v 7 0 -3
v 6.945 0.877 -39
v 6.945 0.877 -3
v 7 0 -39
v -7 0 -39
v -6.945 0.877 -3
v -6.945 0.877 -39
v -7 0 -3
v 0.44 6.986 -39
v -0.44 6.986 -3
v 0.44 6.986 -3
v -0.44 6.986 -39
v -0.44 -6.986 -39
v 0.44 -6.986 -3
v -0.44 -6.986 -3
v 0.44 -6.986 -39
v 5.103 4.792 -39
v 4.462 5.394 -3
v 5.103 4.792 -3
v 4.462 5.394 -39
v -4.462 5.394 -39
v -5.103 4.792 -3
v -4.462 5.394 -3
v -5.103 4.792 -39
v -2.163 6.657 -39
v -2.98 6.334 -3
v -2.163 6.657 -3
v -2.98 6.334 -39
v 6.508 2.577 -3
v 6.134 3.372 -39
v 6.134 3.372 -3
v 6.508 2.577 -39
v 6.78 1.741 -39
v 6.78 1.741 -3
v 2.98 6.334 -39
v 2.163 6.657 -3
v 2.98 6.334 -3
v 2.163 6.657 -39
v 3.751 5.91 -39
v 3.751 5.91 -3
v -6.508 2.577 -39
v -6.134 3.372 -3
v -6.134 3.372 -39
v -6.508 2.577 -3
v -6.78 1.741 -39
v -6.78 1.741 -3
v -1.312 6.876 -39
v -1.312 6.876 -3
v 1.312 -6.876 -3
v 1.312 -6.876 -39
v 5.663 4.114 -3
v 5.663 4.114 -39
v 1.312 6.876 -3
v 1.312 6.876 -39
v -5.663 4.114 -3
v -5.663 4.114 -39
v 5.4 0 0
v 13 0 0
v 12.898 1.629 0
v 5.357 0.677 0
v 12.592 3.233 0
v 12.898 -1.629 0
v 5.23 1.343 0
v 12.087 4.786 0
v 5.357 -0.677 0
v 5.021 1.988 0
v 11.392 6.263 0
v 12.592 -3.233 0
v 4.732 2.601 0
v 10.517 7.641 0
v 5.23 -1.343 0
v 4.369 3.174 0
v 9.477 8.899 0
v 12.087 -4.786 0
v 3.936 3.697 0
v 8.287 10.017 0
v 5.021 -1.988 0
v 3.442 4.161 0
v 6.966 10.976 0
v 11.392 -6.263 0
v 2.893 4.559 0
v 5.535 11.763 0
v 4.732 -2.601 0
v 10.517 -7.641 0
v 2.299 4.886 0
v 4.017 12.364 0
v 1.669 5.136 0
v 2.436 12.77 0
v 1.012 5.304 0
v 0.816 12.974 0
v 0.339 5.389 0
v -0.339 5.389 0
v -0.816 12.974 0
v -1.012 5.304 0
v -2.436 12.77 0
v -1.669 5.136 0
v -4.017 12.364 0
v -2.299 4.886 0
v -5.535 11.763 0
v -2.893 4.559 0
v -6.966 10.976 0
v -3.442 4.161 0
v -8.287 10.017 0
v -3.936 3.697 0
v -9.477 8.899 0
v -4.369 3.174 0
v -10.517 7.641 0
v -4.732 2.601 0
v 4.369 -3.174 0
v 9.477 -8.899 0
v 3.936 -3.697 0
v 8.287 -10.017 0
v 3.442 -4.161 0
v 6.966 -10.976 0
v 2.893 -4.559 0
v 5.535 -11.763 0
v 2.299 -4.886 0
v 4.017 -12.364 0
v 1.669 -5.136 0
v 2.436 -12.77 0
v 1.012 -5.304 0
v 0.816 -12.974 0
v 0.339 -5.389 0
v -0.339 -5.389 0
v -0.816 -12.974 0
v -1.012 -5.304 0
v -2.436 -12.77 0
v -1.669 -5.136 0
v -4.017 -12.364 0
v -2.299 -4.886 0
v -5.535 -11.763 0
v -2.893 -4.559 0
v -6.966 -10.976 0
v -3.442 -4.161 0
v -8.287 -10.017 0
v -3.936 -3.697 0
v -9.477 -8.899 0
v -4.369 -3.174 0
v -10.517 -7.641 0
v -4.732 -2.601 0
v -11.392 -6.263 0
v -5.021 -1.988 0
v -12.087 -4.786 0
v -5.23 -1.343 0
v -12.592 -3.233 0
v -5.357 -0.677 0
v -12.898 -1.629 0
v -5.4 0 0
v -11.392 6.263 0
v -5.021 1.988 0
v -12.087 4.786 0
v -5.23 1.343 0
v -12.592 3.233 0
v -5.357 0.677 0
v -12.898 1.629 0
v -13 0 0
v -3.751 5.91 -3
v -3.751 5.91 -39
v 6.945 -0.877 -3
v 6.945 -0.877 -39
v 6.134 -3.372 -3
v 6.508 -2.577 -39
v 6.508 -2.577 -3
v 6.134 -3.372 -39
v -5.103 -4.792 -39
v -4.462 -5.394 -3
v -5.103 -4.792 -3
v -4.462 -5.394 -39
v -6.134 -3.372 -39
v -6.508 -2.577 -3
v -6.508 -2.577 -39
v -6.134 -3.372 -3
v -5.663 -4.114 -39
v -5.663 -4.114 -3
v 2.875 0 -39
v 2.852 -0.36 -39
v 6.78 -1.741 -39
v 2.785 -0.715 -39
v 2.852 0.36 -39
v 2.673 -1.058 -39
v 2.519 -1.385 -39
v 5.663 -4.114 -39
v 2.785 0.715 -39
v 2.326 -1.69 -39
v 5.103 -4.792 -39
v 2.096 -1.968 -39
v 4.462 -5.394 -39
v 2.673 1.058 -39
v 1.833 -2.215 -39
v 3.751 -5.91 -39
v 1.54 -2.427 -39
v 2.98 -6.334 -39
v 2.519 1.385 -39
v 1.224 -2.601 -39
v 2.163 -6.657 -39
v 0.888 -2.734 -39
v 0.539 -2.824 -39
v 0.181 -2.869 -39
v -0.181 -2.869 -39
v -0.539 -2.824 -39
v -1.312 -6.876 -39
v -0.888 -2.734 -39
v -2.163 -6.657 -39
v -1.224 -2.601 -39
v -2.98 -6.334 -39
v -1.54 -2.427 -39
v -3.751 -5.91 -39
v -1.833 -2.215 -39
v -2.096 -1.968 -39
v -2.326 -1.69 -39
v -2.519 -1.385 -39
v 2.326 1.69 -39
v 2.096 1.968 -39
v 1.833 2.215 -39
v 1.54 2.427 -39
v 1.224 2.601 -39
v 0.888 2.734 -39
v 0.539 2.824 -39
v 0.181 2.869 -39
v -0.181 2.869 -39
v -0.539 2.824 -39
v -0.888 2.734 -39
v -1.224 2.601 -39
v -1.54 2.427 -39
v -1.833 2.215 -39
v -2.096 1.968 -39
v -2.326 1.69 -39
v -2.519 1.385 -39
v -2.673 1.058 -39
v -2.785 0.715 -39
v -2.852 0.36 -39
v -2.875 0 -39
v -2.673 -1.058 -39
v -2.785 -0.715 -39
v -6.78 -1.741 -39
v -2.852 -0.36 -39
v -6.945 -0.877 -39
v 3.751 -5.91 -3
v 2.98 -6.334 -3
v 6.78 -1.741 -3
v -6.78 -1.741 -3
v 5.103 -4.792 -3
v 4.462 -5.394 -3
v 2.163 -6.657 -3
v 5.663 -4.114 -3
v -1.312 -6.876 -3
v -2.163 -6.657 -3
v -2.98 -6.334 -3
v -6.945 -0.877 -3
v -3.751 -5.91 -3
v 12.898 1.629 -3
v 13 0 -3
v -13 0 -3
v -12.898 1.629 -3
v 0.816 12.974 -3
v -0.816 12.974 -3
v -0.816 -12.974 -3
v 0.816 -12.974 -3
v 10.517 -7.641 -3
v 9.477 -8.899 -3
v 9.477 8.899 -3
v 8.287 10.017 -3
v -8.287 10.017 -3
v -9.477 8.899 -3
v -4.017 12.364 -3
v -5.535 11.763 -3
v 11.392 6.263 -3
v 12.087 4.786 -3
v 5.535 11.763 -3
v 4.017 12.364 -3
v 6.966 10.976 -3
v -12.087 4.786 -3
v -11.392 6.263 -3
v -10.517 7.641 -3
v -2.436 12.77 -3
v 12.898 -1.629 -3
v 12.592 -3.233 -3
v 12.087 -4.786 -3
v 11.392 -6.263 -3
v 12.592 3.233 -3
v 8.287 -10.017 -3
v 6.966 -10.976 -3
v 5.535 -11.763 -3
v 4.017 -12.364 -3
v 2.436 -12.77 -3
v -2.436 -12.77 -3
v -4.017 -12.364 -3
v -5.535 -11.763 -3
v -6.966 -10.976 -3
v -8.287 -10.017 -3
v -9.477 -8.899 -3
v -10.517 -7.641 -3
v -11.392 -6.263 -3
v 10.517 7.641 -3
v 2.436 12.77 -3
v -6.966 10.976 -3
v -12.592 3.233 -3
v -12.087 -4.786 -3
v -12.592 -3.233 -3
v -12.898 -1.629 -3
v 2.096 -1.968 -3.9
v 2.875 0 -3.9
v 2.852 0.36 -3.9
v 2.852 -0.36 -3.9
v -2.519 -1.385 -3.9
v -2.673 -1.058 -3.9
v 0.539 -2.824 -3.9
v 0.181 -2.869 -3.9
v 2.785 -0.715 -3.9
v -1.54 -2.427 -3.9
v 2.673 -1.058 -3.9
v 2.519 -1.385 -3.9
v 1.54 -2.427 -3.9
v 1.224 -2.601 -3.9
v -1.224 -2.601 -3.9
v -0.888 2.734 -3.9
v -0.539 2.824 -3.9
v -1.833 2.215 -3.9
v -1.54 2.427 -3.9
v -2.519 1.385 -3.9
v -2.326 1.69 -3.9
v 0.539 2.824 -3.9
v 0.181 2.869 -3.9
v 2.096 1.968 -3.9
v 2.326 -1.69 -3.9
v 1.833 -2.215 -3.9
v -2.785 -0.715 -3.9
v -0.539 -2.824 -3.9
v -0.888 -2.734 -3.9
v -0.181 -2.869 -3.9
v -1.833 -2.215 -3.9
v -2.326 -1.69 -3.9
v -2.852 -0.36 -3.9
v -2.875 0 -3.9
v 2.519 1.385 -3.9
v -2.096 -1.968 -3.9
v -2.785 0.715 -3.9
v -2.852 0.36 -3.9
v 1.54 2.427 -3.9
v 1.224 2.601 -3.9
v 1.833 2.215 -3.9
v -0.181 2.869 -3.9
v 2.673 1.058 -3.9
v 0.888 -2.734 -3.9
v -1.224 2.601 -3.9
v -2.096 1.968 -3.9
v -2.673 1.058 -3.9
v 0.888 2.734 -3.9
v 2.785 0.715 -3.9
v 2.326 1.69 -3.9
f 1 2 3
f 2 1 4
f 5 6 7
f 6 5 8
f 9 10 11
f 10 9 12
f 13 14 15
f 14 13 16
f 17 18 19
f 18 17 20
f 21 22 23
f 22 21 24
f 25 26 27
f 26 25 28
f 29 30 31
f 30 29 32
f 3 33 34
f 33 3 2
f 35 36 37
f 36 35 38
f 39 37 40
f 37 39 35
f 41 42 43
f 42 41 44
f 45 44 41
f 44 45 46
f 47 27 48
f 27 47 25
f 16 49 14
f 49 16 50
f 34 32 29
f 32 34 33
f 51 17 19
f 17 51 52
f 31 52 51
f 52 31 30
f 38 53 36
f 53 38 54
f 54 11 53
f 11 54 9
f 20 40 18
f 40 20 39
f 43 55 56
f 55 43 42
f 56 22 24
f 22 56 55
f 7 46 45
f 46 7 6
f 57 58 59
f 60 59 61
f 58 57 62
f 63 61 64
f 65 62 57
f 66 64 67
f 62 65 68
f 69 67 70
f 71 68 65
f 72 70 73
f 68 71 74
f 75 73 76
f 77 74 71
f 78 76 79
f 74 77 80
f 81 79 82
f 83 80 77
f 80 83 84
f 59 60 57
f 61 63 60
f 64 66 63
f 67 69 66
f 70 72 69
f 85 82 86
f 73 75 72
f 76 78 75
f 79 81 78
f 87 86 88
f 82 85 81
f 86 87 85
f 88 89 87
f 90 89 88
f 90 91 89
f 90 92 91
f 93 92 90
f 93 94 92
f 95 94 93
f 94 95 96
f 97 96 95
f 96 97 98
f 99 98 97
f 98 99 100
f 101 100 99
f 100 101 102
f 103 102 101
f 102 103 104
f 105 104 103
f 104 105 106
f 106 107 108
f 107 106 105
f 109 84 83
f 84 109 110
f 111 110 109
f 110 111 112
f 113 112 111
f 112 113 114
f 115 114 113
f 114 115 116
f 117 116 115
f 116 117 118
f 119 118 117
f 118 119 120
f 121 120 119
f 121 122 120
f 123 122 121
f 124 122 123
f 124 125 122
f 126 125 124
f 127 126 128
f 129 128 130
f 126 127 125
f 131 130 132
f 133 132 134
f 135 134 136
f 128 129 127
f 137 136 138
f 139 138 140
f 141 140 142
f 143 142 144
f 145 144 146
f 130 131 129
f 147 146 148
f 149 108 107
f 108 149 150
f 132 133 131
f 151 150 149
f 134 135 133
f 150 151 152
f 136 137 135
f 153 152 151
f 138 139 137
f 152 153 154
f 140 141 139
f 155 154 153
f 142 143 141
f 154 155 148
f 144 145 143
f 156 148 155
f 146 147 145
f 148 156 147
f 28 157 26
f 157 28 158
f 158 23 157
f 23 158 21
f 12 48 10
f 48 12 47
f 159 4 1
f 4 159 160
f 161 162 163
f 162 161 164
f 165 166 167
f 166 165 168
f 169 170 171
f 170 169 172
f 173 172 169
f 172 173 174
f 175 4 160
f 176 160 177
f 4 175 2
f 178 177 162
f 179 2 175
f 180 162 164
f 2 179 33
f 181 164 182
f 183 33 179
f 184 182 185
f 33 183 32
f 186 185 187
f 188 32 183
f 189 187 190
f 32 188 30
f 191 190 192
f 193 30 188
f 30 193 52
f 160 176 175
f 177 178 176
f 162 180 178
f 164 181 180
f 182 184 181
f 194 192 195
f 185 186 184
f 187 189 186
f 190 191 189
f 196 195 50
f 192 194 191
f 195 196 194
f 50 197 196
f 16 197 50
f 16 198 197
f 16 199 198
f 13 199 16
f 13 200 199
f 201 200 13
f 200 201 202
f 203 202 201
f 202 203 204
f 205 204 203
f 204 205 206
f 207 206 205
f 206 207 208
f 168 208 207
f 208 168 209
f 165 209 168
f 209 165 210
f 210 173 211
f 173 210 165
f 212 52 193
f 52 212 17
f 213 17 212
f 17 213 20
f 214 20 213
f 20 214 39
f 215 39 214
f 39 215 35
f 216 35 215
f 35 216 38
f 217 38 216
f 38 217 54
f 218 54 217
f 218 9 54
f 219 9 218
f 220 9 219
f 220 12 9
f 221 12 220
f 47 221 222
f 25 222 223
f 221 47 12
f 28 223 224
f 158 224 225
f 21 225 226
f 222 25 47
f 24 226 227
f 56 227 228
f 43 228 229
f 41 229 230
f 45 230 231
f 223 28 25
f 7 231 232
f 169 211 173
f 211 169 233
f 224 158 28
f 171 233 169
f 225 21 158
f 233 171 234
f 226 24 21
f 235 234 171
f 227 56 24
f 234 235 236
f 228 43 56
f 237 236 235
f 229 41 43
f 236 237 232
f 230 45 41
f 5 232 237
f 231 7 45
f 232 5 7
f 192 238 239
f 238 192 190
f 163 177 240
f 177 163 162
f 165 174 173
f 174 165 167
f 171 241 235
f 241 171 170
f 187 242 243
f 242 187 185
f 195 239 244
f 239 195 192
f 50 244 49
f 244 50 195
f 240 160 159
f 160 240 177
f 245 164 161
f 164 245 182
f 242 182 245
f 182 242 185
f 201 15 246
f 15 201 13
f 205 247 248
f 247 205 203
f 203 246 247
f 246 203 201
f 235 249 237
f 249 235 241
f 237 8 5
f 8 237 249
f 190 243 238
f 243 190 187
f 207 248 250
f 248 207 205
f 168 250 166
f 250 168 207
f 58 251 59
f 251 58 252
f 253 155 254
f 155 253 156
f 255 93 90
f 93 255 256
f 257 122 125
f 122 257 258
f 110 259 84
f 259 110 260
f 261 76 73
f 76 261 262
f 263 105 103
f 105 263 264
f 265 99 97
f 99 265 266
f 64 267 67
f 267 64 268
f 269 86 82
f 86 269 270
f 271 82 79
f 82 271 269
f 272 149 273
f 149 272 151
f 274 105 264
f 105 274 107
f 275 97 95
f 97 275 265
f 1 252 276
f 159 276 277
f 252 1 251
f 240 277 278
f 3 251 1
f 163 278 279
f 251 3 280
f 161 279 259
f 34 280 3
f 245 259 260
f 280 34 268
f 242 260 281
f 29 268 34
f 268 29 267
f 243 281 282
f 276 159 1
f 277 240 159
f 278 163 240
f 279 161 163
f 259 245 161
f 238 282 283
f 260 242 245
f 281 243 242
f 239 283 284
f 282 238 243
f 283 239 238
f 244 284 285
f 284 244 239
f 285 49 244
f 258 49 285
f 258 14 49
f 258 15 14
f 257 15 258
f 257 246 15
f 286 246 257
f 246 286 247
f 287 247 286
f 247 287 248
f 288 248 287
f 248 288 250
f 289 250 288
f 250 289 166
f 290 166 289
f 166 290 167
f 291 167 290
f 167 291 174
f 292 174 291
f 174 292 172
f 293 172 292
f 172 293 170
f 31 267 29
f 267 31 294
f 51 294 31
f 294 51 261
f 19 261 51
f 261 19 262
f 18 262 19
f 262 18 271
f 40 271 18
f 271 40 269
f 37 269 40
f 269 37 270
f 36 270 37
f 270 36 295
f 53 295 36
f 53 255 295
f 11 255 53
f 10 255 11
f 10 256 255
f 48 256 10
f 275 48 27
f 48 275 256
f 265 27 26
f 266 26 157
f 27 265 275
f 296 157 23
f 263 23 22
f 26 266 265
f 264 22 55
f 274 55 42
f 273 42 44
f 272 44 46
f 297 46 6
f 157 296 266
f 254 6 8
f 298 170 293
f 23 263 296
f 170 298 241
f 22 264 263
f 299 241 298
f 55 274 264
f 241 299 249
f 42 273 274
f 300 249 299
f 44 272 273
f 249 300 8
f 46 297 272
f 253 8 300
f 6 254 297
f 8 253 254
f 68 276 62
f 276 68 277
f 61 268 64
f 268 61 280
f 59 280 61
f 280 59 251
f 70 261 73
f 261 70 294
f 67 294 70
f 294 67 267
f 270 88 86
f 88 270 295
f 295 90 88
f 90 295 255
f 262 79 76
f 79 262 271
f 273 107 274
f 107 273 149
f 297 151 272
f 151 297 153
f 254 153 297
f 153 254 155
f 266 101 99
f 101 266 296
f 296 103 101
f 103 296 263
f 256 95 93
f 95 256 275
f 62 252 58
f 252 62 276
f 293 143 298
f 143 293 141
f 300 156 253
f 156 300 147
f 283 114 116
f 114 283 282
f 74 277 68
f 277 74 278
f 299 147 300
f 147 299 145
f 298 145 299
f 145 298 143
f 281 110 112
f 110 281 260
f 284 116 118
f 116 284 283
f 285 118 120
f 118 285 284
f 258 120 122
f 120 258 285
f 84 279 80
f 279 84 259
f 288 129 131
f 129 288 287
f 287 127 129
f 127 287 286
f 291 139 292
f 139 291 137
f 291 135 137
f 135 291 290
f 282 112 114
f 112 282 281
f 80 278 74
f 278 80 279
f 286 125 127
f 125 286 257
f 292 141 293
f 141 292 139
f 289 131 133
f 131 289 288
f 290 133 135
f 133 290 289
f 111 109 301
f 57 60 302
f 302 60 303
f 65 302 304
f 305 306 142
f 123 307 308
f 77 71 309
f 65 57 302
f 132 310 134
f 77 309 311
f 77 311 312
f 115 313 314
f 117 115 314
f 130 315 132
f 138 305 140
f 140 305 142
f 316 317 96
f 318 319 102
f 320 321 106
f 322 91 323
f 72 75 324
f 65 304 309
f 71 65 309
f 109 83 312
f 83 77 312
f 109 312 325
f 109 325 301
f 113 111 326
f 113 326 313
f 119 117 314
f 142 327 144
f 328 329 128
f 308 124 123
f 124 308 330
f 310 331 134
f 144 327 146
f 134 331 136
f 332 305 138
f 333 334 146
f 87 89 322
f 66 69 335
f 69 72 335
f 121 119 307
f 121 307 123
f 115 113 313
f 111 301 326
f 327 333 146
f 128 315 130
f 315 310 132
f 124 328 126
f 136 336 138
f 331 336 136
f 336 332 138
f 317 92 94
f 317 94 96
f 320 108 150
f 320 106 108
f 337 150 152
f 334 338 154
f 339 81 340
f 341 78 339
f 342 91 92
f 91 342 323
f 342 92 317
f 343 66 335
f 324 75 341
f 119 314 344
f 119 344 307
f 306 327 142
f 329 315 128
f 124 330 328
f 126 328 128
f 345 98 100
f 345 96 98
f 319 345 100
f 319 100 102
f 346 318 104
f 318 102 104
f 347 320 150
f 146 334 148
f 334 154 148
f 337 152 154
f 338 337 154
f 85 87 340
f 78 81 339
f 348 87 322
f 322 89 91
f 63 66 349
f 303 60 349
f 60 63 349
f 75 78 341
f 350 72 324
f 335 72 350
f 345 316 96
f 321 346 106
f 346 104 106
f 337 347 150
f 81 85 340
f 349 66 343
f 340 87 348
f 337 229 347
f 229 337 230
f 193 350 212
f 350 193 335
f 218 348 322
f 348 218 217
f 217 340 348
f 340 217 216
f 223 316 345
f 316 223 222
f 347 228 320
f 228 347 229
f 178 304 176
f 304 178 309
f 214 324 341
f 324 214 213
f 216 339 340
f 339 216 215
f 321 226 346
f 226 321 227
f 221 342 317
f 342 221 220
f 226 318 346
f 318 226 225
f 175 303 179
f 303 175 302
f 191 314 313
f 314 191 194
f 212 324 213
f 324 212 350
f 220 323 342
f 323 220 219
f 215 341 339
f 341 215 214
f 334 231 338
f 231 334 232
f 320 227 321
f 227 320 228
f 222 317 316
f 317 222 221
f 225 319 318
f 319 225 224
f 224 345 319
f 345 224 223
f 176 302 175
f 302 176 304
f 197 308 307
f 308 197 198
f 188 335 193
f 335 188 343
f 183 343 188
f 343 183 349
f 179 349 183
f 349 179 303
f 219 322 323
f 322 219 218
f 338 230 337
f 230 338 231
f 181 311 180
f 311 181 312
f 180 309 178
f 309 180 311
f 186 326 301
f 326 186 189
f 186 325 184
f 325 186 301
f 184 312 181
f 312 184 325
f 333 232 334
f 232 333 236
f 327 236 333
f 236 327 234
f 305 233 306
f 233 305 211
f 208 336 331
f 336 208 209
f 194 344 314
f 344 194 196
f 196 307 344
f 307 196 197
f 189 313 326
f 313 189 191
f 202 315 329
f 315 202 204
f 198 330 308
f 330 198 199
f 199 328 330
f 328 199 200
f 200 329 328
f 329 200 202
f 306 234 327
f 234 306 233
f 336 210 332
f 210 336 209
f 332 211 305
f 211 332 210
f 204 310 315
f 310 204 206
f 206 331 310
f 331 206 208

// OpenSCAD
$fn = 50;


difference() {
	union() {
		translate(v = [0, 0, -39.0000000000]) {
			cylinder(h = 39, r = 7.0000000000);
		}
		translate(v = [0, 0, -3.0000000000]) {
			cylinder(h = 3, r = 13.0000000000);
		}
	}
	union() {
		translate(v = [0, 0, 0]) {
			rotate(a = [0, 0, 0]) {
				difference() {
					union() {
						#translate(v = [0, 0, -39.0000000000]) {
							cylinder(h = 39, r = 2.6000000000);
						}
						#translate(v = [0, 0, -3.9000000000]) {
							cylinder(h = 3.9000000000, r1 = 2.8750000000, r2 = 5.4000000000);
						}
						#translate(v = [0, 0, -39.0000000000]) {
							cylinder(h = 39, r = 2.8750000000);
						}
						#translate(v = [0, 0, -39.0000000000]) {
							cylinder(h = 39, r = 2.6000000000);
						}
					}
					union();
				}
			}
		}
	}
}
